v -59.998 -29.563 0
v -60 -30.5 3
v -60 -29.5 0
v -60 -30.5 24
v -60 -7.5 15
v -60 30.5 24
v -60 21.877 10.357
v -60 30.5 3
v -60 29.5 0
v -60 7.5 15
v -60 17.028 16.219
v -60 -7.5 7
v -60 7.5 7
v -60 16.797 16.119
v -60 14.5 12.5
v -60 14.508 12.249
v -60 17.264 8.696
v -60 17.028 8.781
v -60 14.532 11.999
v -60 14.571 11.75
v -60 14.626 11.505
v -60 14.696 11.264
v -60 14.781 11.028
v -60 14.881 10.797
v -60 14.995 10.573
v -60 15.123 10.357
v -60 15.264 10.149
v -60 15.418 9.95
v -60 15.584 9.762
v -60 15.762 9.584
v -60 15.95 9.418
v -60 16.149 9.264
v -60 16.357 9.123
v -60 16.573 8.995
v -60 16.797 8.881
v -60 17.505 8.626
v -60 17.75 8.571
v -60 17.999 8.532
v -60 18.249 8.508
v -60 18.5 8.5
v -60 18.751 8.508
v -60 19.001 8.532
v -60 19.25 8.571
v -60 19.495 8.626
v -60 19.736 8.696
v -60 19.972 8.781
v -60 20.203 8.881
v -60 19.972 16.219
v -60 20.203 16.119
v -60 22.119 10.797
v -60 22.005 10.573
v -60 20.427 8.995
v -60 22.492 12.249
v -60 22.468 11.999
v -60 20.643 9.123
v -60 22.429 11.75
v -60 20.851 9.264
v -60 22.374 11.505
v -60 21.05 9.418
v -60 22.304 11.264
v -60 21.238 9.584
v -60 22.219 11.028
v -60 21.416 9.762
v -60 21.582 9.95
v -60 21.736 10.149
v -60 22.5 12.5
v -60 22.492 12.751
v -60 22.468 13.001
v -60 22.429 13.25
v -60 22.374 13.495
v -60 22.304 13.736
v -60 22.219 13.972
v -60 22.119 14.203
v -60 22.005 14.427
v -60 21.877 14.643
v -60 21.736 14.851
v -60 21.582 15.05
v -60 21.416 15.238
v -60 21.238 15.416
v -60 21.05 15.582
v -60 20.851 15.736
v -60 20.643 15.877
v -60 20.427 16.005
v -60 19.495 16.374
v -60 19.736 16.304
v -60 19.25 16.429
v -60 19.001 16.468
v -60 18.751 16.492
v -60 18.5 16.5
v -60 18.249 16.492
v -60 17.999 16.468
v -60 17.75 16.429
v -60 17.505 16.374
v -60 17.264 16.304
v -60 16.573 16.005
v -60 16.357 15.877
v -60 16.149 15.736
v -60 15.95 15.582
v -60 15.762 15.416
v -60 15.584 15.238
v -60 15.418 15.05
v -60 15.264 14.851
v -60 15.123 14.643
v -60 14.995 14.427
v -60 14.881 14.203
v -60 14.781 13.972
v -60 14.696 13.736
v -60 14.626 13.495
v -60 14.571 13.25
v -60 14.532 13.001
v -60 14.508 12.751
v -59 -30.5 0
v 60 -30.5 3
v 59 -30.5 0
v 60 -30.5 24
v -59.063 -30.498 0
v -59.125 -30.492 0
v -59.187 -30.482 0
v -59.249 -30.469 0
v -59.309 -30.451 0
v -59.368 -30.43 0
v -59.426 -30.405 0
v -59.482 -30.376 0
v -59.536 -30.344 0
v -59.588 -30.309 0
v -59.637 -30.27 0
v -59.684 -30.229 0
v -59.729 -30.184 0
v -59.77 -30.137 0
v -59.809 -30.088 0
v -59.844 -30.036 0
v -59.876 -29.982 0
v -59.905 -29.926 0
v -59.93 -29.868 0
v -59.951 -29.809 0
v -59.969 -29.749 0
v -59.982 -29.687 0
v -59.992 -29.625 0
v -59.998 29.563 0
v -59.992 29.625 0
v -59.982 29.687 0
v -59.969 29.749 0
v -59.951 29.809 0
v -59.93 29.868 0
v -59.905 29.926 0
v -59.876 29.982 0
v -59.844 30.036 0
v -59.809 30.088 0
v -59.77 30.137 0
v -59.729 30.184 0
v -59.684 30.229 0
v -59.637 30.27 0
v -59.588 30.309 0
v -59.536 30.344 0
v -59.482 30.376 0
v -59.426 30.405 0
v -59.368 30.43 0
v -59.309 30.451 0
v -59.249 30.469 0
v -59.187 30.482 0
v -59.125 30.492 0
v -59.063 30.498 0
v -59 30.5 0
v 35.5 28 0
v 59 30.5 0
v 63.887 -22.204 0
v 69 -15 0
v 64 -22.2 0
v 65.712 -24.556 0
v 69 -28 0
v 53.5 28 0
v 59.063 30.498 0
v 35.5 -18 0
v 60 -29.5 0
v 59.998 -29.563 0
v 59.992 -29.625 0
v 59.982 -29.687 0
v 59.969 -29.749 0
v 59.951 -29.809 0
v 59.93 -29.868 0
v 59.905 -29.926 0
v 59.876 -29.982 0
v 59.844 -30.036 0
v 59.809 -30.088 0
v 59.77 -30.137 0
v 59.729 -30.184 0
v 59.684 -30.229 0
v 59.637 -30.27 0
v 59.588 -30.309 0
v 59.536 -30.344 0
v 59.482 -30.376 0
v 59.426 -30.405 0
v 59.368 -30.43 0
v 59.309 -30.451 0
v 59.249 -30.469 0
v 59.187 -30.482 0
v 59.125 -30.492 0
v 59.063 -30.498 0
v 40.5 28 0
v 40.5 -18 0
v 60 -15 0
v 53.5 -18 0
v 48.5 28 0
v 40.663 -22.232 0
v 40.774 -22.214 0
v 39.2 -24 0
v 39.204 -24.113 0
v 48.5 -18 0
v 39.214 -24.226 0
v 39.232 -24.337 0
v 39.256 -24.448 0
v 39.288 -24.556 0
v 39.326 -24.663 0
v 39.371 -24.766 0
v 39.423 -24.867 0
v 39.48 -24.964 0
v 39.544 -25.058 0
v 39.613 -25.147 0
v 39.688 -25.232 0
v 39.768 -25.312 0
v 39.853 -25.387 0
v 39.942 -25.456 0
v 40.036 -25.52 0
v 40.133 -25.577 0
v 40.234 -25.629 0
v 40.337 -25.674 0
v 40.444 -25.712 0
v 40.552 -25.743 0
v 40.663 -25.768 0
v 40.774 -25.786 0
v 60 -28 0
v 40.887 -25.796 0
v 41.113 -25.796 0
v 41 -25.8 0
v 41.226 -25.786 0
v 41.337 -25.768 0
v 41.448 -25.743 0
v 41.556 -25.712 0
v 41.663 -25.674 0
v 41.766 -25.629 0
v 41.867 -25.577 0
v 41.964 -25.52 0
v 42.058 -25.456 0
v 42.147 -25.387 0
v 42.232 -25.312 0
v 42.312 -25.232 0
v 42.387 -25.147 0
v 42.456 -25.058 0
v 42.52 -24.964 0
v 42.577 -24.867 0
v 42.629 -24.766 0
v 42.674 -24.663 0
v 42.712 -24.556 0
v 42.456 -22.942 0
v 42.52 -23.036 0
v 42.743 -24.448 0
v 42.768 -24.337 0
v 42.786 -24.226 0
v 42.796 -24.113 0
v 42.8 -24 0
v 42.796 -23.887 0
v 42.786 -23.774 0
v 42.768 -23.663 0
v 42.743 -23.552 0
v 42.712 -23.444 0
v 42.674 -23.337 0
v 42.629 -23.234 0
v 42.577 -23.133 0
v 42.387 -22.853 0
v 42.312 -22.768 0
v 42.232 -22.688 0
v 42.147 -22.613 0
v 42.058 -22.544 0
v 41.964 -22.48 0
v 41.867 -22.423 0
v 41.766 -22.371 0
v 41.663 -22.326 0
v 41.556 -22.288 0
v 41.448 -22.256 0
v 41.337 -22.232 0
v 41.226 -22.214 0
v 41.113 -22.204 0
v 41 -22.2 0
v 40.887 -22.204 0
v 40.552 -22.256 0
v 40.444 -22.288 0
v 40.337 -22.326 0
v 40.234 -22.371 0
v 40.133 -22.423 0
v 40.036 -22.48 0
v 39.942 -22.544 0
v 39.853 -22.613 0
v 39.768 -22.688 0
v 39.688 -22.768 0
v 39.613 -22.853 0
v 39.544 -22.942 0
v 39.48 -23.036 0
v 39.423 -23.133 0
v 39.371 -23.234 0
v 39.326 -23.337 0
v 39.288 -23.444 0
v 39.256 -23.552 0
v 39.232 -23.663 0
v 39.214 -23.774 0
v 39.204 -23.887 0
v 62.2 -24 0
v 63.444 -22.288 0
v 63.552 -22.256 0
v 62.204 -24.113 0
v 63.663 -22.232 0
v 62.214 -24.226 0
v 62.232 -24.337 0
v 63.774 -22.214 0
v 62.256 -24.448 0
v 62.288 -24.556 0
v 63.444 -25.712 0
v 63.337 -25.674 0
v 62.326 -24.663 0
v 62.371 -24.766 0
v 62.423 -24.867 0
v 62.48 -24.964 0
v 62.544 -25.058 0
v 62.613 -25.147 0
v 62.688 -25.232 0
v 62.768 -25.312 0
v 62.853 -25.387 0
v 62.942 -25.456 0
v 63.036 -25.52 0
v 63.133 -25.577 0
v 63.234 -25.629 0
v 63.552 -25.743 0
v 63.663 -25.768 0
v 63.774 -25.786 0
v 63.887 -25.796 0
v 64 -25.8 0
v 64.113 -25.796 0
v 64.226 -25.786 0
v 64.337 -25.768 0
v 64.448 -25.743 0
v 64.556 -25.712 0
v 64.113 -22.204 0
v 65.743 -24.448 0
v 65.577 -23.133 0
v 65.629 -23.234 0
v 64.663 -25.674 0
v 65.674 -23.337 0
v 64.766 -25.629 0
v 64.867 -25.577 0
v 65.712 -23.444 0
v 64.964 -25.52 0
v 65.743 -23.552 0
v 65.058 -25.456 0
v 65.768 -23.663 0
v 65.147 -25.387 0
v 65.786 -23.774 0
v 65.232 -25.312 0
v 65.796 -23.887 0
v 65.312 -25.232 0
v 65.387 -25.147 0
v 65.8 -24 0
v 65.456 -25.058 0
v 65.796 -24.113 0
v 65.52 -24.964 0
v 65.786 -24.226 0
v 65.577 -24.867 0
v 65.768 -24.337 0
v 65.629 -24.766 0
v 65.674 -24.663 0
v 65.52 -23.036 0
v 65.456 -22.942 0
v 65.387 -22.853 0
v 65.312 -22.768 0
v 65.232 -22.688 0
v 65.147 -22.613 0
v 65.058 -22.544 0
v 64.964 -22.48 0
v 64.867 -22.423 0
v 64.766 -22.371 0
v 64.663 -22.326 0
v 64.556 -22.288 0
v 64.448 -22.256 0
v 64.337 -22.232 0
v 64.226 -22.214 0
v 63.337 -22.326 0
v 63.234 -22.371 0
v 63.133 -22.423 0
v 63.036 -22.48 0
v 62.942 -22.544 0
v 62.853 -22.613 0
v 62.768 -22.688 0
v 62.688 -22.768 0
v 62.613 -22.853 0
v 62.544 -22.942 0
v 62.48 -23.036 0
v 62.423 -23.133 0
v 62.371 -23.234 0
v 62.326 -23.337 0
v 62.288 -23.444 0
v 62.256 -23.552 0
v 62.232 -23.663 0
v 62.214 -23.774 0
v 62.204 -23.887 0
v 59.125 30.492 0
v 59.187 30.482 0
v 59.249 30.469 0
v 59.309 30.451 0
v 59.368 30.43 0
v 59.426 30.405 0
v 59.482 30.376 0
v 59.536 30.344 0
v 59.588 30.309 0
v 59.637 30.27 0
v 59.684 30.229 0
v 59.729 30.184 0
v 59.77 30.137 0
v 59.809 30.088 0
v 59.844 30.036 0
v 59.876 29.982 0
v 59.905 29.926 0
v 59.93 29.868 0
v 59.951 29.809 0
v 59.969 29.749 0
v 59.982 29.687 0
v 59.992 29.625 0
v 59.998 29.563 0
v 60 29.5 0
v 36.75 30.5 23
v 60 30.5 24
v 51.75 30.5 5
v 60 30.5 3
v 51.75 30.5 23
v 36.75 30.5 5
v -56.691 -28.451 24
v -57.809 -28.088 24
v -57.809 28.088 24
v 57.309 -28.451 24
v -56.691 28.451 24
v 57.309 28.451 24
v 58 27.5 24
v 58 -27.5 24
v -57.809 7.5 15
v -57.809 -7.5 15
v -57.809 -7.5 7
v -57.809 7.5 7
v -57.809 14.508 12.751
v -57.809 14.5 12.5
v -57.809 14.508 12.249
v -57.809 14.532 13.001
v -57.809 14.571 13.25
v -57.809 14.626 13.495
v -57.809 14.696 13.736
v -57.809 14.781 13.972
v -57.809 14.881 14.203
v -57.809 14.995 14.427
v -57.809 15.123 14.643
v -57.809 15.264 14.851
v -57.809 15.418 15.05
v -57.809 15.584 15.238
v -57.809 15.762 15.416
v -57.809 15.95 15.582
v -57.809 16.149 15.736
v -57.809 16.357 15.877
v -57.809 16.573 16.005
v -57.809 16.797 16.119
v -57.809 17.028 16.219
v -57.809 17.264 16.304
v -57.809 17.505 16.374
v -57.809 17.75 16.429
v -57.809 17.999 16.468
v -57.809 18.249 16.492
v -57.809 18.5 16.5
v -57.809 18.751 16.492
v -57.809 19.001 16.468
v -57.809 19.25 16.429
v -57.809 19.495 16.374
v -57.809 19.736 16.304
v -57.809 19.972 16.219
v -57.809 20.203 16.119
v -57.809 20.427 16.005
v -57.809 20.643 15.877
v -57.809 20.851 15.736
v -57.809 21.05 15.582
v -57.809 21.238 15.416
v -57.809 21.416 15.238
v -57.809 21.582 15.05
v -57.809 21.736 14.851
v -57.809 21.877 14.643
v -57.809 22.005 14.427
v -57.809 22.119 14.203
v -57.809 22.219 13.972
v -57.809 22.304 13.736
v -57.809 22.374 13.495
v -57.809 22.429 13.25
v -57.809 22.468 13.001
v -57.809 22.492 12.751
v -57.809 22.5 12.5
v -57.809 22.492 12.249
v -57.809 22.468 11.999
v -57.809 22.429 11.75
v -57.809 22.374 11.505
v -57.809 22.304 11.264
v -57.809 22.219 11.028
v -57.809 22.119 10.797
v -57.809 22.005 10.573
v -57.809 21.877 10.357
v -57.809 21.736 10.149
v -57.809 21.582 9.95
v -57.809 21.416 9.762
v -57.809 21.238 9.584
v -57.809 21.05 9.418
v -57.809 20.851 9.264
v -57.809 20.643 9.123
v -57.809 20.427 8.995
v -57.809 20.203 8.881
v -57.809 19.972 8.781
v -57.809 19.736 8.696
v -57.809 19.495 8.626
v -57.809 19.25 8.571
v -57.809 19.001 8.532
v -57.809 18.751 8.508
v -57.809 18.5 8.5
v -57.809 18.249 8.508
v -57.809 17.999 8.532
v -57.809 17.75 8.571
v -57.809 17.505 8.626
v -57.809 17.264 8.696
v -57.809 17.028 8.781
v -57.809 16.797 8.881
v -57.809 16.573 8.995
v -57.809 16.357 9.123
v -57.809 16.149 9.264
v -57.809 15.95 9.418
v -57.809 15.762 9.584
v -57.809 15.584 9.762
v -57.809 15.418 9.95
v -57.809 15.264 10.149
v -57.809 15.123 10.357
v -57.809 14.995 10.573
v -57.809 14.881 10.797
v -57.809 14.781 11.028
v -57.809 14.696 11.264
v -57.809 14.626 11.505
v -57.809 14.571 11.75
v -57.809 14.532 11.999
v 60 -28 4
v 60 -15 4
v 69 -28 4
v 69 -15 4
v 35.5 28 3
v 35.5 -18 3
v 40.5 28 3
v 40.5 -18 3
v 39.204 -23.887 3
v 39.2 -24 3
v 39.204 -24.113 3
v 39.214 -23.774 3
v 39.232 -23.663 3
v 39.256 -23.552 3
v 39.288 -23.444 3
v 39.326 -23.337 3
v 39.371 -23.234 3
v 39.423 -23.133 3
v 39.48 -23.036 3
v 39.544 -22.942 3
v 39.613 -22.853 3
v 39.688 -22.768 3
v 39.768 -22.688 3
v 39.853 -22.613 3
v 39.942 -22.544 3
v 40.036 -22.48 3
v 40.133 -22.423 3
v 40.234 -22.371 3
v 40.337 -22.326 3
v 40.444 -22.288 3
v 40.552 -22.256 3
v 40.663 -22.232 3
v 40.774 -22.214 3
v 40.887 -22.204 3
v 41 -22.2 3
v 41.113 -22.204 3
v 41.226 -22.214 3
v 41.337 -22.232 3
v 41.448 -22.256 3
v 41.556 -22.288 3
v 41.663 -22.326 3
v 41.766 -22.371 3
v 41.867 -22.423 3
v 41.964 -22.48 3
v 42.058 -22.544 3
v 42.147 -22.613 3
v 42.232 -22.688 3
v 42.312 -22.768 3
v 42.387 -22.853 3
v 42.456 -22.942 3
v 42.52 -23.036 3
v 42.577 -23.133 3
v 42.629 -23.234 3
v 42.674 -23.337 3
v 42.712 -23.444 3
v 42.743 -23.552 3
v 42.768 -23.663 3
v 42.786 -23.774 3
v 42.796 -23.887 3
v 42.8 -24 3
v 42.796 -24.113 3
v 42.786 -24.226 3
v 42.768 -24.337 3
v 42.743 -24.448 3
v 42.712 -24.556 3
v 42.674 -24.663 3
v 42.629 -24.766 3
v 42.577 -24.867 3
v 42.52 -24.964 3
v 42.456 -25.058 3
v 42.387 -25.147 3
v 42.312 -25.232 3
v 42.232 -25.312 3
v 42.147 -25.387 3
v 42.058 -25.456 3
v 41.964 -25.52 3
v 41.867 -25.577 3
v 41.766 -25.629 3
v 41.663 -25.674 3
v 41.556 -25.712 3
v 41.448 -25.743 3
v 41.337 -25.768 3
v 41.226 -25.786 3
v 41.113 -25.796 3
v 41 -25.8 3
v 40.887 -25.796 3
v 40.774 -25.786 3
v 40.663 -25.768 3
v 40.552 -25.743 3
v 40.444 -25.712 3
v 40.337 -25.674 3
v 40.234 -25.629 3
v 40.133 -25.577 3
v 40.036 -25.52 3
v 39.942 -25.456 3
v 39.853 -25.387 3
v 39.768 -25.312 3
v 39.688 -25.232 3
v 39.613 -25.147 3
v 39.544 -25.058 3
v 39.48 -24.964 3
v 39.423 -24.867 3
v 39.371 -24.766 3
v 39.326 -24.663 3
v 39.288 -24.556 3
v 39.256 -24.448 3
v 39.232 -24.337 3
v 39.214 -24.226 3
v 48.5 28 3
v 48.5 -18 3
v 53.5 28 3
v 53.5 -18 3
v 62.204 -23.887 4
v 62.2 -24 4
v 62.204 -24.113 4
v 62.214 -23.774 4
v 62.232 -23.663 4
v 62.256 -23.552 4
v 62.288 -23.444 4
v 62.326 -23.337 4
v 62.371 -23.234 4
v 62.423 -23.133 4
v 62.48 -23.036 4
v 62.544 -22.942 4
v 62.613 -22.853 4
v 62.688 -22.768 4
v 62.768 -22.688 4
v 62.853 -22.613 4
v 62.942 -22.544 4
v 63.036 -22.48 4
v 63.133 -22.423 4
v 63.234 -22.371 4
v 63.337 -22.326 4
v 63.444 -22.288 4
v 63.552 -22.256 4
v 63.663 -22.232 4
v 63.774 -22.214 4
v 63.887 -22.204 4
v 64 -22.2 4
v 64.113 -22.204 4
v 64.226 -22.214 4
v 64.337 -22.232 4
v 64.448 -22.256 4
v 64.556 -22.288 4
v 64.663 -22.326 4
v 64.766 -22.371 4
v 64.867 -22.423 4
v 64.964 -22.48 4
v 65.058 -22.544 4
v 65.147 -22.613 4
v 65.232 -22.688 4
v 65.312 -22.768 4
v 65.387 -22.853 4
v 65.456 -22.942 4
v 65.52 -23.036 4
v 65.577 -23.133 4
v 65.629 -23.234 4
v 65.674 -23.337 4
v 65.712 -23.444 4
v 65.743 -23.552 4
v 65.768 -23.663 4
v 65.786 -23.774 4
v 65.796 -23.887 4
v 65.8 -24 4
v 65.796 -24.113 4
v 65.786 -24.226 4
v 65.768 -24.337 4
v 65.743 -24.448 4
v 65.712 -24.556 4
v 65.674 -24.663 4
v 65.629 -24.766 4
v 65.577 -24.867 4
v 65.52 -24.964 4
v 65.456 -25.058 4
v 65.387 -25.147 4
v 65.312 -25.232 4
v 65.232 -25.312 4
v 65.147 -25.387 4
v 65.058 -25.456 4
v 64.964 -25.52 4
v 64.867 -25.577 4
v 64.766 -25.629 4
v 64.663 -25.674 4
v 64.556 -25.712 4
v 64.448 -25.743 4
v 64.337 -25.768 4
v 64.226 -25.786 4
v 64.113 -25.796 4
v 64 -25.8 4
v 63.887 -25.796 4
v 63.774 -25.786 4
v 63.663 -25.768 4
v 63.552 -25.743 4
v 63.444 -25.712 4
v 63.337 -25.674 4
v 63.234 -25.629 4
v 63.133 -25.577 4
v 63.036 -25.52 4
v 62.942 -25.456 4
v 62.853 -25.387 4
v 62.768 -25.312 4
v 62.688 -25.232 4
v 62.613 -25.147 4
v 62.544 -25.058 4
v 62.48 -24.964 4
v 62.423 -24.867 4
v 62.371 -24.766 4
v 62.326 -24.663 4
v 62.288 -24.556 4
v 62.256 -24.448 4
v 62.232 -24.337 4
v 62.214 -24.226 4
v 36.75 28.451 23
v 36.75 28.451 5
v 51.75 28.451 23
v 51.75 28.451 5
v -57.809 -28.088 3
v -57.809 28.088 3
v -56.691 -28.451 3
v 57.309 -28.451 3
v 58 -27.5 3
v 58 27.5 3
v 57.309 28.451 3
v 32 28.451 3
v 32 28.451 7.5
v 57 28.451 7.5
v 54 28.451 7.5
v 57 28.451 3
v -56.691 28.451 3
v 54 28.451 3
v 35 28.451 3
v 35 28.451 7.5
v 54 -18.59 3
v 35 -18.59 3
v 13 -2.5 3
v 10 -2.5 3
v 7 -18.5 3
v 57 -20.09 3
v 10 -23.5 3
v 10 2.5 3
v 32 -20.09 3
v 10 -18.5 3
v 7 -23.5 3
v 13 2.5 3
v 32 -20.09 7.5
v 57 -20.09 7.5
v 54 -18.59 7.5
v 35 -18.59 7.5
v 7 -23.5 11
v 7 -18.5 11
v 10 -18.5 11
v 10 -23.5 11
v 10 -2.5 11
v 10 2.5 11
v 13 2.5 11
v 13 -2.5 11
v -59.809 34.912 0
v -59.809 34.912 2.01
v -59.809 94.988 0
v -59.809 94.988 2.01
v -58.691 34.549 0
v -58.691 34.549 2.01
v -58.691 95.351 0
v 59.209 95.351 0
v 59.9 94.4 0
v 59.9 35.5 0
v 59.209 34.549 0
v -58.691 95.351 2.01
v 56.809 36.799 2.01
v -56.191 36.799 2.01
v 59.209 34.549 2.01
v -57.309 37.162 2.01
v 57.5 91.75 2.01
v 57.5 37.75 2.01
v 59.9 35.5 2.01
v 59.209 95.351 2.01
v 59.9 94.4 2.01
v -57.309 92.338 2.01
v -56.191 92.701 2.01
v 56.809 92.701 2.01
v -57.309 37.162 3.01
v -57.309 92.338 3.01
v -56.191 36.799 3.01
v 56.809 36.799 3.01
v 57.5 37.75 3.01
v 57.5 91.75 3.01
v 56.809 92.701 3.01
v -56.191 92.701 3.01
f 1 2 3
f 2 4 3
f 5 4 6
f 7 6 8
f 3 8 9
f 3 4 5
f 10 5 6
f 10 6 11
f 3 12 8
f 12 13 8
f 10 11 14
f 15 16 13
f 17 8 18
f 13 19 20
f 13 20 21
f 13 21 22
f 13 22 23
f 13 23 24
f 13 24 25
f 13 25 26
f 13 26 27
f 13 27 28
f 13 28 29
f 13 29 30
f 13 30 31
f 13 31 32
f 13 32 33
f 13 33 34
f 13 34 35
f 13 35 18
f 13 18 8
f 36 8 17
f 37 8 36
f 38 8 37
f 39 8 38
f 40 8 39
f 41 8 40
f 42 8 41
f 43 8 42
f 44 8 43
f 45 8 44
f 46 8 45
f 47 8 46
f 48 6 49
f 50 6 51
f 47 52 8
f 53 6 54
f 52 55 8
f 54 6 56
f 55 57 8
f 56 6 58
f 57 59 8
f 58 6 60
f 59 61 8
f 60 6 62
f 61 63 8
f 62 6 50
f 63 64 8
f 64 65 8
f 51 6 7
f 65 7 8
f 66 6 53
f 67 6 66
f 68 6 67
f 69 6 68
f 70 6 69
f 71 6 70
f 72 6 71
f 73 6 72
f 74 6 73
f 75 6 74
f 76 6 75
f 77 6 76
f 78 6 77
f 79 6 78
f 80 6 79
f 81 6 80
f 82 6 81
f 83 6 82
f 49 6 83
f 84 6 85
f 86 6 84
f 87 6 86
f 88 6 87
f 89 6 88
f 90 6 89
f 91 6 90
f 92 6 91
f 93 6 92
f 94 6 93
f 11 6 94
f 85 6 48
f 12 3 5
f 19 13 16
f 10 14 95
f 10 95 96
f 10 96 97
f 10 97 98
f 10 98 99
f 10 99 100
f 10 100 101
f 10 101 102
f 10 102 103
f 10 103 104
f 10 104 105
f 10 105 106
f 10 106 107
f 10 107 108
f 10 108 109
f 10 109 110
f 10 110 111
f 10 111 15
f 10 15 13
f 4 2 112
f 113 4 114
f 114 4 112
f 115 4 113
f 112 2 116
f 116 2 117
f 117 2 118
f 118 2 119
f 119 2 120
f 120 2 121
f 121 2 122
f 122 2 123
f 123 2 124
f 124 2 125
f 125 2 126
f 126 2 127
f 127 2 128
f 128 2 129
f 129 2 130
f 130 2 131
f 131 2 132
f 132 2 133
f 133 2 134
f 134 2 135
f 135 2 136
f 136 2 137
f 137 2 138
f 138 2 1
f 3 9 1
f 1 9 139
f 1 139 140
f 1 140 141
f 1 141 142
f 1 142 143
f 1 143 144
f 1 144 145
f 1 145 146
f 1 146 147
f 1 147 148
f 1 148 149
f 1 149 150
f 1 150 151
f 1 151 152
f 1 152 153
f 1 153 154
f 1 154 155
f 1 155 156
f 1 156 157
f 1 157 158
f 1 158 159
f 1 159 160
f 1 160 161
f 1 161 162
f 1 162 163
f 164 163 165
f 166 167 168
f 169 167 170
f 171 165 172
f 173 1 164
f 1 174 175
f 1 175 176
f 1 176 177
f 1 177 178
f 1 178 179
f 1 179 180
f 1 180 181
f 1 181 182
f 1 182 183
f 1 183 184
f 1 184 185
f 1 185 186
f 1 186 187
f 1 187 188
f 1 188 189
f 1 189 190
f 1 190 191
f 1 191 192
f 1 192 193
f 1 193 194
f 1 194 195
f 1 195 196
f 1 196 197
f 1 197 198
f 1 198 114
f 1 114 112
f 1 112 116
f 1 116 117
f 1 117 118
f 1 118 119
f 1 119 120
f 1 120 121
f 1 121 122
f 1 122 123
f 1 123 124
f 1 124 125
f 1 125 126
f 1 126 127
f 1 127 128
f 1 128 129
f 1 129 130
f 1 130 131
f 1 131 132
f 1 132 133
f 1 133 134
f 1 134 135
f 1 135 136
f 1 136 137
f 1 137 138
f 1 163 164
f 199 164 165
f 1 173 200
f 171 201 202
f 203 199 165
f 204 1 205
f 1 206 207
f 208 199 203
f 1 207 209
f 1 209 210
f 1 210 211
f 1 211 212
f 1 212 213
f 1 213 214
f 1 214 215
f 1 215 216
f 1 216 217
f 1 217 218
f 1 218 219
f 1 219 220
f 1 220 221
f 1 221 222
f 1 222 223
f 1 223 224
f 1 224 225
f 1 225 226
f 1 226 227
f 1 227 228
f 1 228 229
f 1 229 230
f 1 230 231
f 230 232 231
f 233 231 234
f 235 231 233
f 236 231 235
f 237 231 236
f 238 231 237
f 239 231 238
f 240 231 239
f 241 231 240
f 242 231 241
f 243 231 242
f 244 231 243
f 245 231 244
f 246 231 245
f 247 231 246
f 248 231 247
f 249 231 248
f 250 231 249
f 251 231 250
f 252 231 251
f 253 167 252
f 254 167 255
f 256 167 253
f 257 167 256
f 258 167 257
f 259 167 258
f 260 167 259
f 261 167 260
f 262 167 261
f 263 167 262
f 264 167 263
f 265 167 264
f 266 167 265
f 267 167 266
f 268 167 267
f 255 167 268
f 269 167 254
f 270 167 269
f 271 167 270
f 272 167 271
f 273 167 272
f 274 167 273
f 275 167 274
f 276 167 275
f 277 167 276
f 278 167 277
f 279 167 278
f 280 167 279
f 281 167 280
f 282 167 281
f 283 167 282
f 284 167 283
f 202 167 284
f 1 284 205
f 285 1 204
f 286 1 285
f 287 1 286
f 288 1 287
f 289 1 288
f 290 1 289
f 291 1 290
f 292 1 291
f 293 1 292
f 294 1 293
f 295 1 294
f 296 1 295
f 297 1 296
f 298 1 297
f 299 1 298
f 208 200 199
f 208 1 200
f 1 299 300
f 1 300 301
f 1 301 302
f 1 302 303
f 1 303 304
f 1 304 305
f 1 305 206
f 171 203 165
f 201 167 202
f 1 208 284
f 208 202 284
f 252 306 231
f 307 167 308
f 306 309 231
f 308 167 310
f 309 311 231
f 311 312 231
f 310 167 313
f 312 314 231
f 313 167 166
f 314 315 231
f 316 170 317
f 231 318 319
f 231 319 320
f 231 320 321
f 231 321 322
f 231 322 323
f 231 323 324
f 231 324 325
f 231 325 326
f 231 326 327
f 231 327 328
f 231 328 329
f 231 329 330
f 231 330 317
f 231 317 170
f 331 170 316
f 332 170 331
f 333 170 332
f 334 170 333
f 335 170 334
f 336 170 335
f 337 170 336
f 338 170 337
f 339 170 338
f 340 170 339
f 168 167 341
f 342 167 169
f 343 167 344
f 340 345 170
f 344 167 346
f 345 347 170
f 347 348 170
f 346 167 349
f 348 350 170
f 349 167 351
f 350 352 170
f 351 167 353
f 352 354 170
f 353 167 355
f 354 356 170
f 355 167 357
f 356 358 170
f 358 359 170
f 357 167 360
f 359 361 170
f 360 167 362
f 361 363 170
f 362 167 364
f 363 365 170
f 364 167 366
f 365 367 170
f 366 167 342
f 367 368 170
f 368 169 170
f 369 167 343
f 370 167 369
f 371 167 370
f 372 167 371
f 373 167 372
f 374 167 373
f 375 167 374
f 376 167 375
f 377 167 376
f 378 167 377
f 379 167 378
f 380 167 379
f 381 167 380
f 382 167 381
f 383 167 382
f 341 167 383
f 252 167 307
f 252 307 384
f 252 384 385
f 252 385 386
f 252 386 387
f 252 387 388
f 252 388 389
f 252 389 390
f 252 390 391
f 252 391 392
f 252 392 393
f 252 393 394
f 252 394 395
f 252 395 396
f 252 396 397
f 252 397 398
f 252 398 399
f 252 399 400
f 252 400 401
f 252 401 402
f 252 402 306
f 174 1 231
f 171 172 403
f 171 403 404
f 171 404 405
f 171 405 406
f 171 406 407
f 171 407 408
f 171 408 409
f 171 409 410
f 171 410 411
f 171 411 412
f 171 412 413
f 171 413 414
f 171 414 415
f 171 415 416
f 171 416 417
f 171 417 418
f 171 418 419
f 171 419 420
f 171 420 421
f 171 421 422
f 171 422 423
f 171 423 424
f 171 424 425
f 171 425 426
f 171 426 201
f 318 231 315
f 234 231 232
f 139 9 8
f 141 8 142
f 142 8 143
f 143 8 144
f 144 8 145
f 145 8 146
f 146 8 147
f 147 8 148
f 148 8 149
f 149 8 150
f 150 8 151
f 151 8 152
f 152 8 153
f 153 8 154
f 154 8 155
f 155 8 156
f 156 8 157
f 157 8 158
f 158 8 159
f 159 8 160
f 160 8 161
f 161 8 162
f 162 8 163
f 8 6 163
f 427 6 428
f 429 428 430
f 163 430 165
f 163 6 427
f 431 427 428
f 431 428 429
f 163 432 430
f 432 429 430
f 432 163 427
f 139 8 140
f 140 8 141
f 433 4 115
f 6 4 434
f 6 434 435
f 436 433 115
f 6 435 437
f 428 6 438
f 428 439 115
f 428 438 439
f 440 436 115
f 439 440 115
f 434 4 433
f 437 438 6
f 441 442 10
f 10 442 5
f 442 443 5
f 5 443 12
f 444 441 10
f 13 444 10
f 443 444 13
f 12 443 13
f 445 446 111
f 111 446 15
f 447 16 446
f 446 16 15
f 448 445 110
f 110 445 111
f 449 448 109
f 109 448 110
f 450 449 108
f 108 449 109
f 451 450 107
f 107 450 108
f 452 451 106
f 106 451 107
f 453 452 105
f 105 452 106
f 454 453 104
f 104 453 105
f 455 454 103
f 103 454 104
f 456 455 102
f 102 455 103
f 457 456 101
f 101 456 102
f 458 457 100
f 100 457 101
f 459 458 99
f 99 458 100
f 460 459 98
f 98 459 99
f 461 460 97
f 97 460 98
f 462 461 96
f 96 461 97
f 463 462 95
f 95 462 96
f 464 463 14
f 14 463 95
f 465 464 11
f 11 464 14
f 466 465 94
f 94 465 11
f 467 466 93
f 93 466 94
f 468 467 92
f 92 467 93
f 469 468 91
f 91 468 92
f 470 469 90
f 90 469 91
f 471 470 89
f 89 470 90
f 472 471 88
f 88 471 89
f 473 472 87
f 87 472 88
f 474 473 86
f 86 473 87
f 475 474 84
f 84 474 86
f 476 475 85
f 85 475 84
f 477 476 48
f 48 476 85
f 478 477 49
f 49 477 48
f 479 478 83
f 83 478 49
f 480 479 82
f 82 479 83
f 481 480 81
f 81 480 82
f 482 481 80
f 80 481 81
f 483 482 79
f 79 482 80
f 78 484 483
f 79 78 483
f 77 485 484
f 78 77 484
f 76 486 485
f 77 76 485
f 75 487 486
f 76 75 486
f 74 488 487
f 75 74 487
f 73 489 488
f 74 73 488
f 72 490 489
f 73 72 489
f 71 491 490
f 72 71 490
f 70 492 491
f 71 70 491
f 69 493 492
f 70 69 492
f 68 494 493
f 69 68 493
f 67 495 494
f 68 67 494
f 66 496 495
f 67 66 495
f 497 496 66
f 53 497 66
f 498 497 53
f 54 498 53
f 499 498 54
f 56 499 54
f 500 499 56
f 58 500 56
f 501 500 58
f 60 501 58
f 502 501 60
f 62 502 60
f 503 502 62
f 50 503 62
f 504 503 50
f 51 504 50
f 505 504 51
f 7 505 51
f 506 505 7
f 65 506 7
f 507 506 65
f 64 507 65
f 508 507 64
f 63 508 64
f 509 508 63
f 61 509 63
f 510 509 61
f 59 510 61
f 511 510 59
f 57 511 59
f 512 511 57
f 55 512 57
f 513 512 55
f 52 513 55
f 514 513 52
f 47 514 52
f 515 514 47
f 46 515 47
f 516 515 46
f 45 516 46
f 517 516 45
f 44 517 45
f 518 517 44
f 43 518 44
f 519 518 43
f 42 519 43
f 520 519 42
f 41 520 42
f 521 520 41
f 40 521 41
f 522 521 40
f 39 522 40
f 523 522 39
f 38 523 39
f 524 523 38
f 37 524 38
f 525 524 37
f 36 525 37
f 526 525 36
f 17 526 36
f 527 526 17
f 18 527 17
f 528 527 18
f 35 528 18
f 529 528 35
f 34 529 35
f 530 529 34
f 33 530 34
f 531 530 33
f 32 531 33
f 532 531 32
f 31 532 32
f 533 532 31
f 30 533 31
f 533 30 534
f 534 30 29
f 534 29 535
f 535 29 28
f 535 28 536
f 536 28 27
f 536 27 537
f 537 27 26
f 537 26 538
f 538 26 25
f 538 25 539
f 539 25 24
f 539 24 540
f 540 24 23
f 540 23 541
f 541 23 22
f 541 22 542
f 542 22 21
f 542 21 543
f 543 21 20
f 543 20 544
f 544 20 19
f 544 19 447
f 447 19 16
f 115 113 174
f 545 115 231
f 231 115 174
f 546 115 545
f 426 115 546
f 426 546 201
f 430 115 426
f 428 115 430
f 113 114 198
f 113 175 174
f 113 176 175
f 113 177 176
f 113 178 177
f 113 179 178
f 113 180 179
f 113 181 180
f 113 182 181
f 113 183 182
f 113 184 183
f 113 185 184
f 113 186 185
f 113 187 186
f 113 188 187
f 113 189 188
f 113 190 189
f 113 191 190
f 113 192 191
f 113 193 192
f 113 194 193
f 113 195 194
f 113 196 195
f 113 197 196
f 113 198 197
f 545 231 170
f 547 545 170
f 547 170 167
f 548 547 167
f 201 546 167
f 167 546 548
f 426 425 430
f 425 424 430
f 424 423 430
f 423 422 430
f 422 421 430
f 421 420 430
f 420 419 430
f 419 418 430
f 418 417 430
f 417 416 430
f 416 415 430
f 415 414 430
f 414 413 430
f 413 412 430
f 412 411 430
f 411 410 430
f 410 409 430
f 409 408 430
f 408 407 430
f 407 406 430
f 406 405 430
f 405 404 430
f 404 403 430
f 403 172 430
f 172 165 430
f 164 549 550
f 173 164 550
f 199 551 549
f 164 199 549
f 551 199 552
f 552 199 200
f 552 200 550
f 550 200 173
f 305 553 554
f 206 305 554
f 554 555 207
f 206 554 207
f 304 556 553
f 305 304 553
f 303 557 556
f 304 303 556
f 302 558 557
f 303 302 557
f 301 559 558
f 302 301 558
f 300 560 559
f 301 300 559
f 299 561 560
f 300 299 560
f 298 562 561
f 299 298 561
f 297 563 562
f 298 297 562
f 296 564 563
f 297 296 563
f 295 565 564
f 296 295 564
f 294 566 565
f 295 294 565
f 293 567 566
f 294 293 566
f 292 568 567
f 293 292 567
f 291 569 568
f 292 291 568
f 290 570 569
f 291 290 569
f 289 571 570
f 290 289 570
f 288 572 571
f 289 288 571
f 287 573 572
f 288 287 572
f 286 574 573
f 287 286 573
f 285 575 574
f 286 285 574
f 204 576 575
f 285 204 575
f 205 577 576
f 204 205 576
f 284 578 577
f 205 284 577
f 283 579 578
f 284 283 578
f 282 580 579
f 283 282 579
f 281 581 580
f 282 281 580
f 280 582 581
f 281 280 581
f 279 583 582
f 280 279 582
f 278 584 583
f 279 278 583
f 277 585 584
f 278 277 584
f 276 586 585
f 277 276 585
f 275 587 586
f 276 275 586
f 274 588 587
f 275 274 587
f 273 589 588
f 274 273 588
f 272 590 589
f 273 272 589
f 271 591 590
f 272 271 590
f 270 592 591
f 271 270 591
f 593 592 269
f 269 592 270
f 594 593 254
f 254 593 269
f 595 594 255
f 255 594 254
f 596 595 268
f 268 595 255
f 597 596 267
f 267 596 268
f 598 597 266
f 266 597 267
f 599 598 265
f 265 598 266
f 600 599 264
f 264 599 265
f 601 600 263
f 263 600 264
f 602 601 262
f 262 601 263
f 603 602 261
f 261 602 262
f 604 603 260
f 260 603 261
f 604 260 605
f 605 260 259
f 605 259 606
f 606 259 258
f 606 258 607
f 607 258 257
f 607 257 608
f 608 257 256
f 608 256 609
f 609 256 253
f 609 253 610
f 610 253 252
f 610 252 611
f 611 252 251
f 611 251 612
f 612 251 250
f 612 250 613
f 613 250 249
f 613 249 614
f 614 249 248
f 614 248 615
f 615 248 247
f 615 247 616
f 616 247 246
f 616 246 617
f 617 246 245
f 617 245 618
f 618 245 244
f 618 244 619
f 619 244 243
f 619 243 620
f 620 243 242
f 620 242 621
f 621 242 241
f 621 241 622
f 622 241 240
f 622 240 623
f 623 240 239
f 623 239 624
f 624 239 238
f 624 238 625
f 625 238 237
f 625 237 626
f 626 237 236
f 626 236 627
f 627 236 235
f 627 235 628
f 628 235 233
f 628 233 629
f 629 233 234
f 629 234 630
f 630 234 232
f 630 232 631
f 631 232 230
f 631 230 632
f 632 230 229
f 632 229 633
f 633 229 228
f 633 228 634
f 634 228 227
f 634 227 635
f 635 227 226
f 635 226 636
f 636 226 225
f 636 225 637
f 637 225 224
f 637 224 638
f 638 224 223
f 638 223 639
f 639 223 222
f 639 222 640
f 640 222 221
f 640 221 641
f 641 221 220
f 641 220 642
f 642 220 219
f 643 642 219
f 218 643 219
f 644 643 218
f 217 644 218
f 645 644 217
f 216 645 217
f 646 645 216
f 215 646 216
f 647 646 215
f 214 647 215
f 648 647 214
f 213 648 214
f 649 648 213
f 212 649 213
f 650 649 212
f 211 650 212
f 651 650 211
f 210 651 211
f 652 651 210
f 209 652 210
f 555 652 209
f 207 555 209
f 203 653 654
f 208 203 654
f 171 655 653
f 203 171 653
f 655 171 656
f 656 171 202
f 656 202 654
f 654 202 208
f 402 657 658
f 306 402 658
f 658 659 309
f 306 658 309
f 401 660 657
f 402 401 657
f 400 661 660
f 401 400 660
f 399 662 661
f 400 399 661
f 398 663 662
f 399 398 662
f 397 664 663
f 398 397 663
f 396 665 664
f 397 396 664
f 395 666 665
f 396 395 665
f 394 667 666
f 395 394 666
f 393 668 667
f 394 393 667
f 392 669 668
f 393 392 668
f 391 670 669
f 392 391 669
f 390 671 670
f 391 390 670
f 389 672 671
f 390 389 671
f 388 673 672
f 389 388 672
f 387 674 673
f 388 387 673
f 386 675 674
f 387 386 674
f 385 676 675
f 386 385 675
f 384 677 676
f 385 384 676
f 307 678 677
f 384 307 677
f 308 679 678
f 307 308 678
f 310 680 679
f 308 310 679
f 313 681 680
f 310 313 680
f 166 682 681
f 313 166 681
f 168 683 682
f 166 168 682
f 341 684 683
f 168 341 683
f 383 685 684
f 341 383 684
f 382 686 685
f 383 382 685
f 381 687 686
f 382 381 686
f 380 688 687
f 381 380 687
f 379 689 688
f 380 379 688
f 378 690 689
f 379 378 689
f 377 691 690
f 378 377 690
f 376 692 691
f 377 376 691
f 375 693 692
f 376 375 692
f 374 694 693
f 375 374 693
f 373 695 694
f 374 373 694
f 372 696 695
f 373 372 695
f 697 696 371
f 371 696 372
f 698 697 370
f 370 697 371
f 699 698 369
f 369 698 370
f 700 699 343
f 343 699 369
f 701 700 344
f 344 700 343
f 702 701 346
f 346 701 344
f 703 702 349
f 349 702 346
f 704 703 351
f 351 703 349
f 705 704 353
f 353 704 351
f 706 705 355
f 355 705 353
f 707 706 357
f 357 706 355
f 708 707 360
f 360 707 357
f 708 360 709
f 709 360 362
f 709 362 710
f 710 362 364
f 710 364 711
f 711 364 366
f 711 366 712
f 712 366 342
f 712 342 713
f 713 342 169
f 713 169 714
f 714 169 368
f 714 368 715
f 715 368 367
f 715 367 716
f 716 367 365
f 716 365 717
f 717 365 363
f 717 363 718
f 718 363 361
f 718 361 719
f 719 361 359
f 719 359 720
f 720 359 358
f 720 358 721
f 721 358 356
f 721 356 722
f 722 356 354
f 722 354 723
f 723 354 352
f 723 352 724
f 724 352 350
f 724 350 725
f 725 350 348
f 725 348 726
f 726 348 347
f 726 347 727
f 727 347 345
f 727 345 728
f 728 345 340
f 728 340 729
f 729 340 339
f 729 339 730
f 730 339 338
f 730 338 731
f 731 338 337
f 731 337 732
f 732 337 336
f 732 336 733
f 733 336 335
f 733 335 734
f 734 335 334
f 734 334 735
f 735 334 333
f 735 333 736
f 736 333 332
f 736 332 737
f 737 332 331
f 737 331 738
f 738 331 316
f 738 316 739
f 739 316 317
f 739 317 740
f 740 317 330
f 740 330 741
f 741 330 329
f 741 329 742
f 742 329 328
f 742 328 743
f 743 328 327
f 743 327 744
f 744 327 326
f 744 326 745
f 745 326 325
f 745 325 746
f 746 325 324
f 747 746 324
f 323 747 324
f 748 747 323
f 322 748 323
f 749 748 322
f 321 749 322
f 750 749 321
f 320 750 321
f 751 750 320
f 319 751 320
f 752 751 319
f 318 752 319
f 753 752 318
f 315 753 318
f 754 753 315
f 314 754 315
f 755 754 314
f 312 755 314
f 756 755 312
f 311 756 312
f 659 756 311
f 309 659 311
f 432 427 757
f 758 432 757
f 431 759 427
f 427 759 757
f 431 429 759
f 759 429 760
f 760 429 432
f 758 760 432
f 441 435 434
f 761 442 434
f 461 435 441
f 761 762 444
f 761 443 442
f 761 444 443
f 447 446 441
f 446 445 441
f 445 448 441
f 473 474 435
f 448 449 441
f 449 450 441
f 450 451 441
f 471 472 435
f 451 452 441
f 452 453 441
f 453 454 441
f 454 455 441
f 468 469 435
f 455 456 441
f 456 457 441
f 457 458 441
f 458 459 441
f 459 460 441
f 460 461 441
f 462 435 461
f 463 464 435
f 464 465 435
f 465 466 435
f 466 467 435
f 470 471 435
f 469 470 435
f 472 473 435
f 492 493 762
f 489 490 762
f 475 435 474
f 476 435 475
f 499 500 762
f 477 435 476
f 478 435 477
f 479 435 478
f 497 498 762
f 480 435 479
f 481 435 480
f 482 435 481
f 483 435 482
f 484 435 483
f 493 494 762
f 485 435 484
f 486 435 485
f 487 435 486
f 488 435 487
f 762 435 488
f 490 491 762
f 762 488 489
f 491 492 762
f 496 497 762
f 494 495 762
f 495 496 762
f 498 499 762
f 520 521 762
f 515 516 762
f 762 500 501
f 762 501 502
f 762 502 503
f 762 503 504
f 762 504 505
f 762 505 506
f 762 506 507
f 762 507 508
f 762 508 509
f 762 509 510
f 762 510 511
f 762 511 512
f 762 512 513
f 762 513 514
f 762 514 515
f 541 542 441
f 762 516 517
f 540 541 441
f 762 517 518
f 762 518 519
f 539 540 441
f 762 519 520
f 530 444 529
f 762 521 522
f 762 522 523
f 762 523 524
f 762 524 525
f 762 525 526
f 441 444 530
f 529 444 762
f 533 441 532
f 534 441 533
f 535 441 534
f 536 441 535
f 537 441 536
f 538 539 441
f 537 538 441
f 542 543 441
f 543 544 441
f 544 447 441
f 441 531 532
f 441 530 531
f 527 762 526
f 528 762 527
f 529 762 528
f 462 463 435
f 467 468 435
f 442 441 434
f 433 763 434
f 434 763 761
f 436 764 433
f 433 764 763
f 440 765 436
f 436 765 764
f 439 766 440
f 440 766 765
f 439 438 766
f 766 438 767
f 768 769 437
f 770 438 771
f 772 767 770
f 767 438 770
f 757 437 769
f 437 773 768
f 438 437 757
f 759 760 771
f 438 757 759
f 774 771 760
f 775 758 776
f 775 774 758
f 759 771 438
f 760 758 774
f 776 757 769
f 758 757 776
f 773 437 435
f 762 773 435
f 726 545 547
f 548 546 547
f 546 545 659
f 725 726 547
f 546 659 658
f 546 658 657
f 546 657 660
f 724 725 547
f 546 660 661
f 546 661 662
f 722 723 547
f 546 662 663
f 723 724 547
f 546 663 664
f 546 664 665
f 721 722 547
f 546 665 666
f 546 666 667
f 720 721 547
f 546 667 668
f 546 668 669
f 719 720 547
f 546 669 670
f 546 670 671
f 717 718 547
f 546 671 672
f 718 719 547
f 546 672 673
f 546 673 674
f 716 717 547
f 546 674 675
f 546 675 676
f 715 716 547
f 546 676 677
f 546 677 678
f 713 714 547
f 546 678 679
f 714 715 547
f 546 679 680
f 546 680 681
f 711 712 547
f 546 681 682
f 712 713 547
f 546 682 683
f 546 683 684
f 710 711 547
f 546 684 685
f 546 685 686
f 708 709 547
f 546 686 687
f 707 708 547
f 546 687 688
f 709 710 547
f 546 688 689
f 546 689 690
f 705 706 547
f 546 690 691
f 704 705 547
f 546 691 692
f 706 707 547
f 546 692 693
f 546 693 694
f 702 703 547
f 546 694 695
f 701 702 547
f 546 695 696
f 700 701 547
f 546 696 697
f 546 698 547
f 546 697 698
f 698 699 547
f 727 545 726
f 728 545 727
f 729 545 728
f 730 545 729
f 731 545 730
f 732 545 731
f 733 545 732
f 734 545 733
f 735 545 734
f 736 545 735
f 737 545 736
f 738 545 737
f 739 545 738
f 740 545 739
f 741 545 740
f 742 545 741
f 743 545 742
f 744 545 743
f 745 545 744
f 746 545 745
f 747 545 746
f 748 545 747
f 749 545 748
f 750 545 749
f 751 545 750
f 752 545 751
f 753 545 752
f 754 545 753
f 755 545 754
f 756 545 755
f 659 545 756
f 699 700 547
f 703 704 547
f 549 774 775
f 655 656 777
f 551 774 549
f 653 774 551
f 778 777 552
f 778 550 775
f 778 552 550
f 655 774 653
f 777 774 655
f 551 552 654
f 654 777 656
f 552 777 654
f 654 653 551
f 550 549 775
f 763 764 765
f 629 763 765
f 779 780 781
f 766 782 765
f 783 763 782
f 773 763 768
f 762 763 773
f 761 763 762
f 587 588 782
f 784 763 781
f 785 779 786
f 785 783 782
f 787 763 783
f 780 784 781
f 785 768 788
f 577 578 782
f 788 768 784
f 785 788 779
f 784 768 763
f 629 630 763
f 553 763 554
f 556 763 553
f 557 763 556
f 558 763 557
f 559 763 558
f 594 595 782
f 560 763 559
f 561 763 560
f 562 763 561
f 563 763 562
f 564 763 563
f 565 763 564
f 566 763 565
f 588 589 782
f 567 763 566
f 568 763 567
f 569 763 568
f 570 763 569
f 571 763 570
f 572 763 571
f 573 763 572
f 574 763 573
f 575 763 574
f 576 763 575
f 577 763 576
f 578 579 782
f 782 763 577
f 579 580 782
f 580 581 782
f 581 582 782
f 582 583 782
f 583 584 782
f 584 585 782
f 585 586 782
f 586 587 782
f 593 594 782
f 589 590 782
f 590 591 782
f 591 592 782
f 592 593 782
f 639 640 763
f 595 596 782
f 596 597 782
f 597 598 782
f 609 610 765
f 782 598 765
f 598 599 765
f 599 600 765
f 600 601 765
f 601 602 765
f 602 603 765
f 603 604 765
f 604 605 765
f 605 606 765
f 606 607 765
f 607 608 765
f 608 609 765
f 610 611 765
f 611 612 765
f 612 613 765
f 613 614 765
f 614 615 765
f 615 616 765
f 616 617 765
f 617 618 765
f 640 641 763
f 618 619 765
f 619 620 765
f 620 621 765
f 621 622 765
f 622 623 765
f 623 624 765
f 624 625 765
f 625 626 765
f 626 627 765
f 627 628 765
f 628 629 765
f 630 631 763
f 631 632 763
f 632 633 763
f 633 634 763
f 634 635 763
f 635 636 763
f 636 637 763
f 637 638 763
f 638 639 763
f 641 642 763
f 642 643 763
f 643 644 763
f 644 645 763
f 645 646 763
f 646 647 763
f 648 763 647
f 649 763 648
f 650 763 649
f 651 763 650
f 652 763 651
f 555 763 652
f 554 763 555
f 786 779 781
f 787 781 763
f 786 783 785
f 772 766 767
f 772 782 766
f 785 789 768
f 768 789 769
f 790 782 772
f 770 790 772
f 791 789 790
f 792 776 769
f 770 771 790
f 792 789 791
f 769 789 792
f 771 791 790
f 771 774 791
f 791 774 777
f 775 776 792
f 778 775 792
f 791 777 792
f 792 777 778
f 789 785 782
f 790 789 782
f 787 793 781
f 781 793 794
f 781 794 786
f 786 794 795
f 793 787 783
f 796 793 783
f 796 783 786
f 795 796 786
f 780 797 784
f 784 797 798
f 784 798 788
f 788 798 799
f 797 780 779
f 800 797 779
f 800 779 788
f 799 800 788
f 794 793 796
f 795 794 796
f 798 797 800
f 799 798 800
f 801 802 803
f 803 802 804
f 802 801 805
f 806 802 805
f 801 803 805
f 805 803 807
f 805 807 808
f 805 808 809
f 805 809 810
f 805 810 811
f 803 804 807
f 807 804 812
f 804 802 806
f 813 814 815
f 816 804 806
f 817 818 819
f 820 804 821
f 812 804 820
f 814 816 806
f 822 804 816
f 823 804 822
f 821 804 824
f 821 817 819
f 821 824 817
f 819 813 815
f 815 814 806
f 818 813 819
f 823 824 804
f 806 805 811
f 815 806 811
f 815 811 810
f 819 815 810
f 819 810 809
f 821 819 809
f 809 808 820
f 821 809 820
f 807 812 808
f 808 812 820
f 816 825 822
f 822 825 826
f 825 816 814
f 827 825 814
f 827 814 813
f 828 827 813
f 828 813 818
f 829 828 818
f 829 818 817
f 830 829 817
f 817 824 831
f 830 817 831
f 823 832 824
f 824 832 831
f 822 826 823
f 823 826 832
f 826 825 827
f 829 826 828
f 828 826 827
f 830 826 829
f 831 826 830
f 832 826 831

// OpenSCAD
// copyright Free Beachler, Longevity Software d.b.a. Terawatt Industries, 2013
// all rights reserved

box_with_inset_lid(3, 4, 21, 80 + 35 + 5, 56 + 5, true);

module box_with_inset_lid(bt, wt, h, w, l, hand) {
	difference() {
		box(bt, wt, h, w, l, hand);
		translate([-w / 2, 0, wt + 5 + 2]) usb_port_a();
		translate([w / 2 - 12 / 2 - wt - 3 / 2 - 19 / 4 + 0.5, l / 2, wt + 5 + 3]) rotate([0, 0, 90]) usb_twoport();
		// power port
		translate([-w / 2, l / 2 - wt - 8, 12 + 0.5]) rotate([0, 90, 0]) cylinder(r = 4, h = 10, center = true, $fn = 100);
		// holes for vinc 2
		translate([l / 2 - 5 / 2 + 18 / 2 + 23 / 2, -16 - wt / 2, -0.1]) cube([5, 46, 10]);
		translate([l / 2 - 5 / 2 + 18 / 2 - 3 / 2, -16 - wt / 2, -0.1]) cube([5, 46, 10]);
		// mount hole
		translate([l - 20, -24, 0]) cylinder(r = 1.8, h = 10, center = true, $fn = 100);
	}
	// wall 1
	translate([-w / 2 + wt / 2 + 65, -l / 2 + wt + 3, 1]) cube([3, 5, 10]);
	translate([-w / 2 + wt / 2 + 68, -5 / 2, 1]) cube([3, 5, 10]);
	inset_lid(wt, h, w, l);
	translate([w / 2 , l / 2 + 0.01, wt + 1]) vinc2();
		// mount plate
		difference() {
			translate([l - 2, -28, 0]) cube([10, 13, wt]);
			translate([l + 3, -24, 0]) cylinder(r = 1.8, h = 10, center = true, $fn = 100);
		}
}

module box(bt, wt, h, w, l) {
	difference() {
		hull() {
			minkowski() {
				translate([-w / 2 + 1, -l / 2 + 1, 0]) cube([w - 1 * 2, l - 1 * 2, bt]);
				cylinder(r = 1, h = 0.01, center = false, $fn = 100);
			}
			translate([-w / 2, -l / 2, bt]) cube([w, l, h]);
		}
		// rounded corners inside
		minkowski() {
			translate([-w / 2 + wt / 2 + 1, -l / 2 + wt / 2 + 1, bt]) cube([w - wt - 1 * 2, l - wt - 1 * 2, h + bt + wt]);
			cylinder(r = 1, h = 0.01, center = false);
		}
	}
}

module inset_lid(wt, h, w, l) {
	translate([-w / 2 + 1, l / 2 + 5, 0]) {
		minkowski() {
			union() {
				cube([w - 1 * 2 - 0.1, l - 1 * 2 - 0.1, 2]);
				translate([wt / 2 + 1 / 2, wt / 2 + 0.5 / 2, 1]) cube([w - wt - 1 * 2 - 1, l - wt - 1 * 2 - 1, 2]);
			}
			cylinder(r = 1, h = 0.01, center = false);
		}
	}
}

module usb_port_a() {
	translate([-20 / 2, -15 / 2, -8 / 2]) rotate([0, 0, 0]) cube([20, 15, 5 + 3]);
}

module usb_port_b() {
	translate([-20 / 2, -12 / 2, -12 / 2]) rotate([0, 0, 0]) cube([20, 12, 13]);
}

module usb_twoport() {
	translate([-20 / 2, -15 / 2, -14 / 2]) rotate([0, 0, 0]) cube([20, 15, 18]);
}

module translator() {
	translate([-11 - 3 / 2, -19 - 3 / 2, -5 / 2]) {
		difference() {
			cube([11 + 3, 19 + 3, 5]);
			translate([3 / 2, 3 / 2, 0]) cube([11, 19, 5 + 0.1]);
		}
	}
}

module cp2102() {
	translate([-25 - 3 / 2, -35 - 3 / 2, -5 / 2]) {
		difference() {
			cube([25 + 3, 35, 5]);
			translate([3 / 2, 3 / 2, 0]) cube([25, 35, 5 + 0.1]);
		}
	}
}

module vinc2() {
	translate([-25, -49 - 3 / 2 - 0.1, -5 / 2]) {
% translate([0.5, 0, 0]) cube([18, 48, 2]);
		difference() {
			translate([-3, 0, 0]) cube([19 + 3 * 2, 49, 5]);
			translate([0, 3 / 2, 0]) cube([19, 49, 5 + 0.1]);
		}
	}
}
